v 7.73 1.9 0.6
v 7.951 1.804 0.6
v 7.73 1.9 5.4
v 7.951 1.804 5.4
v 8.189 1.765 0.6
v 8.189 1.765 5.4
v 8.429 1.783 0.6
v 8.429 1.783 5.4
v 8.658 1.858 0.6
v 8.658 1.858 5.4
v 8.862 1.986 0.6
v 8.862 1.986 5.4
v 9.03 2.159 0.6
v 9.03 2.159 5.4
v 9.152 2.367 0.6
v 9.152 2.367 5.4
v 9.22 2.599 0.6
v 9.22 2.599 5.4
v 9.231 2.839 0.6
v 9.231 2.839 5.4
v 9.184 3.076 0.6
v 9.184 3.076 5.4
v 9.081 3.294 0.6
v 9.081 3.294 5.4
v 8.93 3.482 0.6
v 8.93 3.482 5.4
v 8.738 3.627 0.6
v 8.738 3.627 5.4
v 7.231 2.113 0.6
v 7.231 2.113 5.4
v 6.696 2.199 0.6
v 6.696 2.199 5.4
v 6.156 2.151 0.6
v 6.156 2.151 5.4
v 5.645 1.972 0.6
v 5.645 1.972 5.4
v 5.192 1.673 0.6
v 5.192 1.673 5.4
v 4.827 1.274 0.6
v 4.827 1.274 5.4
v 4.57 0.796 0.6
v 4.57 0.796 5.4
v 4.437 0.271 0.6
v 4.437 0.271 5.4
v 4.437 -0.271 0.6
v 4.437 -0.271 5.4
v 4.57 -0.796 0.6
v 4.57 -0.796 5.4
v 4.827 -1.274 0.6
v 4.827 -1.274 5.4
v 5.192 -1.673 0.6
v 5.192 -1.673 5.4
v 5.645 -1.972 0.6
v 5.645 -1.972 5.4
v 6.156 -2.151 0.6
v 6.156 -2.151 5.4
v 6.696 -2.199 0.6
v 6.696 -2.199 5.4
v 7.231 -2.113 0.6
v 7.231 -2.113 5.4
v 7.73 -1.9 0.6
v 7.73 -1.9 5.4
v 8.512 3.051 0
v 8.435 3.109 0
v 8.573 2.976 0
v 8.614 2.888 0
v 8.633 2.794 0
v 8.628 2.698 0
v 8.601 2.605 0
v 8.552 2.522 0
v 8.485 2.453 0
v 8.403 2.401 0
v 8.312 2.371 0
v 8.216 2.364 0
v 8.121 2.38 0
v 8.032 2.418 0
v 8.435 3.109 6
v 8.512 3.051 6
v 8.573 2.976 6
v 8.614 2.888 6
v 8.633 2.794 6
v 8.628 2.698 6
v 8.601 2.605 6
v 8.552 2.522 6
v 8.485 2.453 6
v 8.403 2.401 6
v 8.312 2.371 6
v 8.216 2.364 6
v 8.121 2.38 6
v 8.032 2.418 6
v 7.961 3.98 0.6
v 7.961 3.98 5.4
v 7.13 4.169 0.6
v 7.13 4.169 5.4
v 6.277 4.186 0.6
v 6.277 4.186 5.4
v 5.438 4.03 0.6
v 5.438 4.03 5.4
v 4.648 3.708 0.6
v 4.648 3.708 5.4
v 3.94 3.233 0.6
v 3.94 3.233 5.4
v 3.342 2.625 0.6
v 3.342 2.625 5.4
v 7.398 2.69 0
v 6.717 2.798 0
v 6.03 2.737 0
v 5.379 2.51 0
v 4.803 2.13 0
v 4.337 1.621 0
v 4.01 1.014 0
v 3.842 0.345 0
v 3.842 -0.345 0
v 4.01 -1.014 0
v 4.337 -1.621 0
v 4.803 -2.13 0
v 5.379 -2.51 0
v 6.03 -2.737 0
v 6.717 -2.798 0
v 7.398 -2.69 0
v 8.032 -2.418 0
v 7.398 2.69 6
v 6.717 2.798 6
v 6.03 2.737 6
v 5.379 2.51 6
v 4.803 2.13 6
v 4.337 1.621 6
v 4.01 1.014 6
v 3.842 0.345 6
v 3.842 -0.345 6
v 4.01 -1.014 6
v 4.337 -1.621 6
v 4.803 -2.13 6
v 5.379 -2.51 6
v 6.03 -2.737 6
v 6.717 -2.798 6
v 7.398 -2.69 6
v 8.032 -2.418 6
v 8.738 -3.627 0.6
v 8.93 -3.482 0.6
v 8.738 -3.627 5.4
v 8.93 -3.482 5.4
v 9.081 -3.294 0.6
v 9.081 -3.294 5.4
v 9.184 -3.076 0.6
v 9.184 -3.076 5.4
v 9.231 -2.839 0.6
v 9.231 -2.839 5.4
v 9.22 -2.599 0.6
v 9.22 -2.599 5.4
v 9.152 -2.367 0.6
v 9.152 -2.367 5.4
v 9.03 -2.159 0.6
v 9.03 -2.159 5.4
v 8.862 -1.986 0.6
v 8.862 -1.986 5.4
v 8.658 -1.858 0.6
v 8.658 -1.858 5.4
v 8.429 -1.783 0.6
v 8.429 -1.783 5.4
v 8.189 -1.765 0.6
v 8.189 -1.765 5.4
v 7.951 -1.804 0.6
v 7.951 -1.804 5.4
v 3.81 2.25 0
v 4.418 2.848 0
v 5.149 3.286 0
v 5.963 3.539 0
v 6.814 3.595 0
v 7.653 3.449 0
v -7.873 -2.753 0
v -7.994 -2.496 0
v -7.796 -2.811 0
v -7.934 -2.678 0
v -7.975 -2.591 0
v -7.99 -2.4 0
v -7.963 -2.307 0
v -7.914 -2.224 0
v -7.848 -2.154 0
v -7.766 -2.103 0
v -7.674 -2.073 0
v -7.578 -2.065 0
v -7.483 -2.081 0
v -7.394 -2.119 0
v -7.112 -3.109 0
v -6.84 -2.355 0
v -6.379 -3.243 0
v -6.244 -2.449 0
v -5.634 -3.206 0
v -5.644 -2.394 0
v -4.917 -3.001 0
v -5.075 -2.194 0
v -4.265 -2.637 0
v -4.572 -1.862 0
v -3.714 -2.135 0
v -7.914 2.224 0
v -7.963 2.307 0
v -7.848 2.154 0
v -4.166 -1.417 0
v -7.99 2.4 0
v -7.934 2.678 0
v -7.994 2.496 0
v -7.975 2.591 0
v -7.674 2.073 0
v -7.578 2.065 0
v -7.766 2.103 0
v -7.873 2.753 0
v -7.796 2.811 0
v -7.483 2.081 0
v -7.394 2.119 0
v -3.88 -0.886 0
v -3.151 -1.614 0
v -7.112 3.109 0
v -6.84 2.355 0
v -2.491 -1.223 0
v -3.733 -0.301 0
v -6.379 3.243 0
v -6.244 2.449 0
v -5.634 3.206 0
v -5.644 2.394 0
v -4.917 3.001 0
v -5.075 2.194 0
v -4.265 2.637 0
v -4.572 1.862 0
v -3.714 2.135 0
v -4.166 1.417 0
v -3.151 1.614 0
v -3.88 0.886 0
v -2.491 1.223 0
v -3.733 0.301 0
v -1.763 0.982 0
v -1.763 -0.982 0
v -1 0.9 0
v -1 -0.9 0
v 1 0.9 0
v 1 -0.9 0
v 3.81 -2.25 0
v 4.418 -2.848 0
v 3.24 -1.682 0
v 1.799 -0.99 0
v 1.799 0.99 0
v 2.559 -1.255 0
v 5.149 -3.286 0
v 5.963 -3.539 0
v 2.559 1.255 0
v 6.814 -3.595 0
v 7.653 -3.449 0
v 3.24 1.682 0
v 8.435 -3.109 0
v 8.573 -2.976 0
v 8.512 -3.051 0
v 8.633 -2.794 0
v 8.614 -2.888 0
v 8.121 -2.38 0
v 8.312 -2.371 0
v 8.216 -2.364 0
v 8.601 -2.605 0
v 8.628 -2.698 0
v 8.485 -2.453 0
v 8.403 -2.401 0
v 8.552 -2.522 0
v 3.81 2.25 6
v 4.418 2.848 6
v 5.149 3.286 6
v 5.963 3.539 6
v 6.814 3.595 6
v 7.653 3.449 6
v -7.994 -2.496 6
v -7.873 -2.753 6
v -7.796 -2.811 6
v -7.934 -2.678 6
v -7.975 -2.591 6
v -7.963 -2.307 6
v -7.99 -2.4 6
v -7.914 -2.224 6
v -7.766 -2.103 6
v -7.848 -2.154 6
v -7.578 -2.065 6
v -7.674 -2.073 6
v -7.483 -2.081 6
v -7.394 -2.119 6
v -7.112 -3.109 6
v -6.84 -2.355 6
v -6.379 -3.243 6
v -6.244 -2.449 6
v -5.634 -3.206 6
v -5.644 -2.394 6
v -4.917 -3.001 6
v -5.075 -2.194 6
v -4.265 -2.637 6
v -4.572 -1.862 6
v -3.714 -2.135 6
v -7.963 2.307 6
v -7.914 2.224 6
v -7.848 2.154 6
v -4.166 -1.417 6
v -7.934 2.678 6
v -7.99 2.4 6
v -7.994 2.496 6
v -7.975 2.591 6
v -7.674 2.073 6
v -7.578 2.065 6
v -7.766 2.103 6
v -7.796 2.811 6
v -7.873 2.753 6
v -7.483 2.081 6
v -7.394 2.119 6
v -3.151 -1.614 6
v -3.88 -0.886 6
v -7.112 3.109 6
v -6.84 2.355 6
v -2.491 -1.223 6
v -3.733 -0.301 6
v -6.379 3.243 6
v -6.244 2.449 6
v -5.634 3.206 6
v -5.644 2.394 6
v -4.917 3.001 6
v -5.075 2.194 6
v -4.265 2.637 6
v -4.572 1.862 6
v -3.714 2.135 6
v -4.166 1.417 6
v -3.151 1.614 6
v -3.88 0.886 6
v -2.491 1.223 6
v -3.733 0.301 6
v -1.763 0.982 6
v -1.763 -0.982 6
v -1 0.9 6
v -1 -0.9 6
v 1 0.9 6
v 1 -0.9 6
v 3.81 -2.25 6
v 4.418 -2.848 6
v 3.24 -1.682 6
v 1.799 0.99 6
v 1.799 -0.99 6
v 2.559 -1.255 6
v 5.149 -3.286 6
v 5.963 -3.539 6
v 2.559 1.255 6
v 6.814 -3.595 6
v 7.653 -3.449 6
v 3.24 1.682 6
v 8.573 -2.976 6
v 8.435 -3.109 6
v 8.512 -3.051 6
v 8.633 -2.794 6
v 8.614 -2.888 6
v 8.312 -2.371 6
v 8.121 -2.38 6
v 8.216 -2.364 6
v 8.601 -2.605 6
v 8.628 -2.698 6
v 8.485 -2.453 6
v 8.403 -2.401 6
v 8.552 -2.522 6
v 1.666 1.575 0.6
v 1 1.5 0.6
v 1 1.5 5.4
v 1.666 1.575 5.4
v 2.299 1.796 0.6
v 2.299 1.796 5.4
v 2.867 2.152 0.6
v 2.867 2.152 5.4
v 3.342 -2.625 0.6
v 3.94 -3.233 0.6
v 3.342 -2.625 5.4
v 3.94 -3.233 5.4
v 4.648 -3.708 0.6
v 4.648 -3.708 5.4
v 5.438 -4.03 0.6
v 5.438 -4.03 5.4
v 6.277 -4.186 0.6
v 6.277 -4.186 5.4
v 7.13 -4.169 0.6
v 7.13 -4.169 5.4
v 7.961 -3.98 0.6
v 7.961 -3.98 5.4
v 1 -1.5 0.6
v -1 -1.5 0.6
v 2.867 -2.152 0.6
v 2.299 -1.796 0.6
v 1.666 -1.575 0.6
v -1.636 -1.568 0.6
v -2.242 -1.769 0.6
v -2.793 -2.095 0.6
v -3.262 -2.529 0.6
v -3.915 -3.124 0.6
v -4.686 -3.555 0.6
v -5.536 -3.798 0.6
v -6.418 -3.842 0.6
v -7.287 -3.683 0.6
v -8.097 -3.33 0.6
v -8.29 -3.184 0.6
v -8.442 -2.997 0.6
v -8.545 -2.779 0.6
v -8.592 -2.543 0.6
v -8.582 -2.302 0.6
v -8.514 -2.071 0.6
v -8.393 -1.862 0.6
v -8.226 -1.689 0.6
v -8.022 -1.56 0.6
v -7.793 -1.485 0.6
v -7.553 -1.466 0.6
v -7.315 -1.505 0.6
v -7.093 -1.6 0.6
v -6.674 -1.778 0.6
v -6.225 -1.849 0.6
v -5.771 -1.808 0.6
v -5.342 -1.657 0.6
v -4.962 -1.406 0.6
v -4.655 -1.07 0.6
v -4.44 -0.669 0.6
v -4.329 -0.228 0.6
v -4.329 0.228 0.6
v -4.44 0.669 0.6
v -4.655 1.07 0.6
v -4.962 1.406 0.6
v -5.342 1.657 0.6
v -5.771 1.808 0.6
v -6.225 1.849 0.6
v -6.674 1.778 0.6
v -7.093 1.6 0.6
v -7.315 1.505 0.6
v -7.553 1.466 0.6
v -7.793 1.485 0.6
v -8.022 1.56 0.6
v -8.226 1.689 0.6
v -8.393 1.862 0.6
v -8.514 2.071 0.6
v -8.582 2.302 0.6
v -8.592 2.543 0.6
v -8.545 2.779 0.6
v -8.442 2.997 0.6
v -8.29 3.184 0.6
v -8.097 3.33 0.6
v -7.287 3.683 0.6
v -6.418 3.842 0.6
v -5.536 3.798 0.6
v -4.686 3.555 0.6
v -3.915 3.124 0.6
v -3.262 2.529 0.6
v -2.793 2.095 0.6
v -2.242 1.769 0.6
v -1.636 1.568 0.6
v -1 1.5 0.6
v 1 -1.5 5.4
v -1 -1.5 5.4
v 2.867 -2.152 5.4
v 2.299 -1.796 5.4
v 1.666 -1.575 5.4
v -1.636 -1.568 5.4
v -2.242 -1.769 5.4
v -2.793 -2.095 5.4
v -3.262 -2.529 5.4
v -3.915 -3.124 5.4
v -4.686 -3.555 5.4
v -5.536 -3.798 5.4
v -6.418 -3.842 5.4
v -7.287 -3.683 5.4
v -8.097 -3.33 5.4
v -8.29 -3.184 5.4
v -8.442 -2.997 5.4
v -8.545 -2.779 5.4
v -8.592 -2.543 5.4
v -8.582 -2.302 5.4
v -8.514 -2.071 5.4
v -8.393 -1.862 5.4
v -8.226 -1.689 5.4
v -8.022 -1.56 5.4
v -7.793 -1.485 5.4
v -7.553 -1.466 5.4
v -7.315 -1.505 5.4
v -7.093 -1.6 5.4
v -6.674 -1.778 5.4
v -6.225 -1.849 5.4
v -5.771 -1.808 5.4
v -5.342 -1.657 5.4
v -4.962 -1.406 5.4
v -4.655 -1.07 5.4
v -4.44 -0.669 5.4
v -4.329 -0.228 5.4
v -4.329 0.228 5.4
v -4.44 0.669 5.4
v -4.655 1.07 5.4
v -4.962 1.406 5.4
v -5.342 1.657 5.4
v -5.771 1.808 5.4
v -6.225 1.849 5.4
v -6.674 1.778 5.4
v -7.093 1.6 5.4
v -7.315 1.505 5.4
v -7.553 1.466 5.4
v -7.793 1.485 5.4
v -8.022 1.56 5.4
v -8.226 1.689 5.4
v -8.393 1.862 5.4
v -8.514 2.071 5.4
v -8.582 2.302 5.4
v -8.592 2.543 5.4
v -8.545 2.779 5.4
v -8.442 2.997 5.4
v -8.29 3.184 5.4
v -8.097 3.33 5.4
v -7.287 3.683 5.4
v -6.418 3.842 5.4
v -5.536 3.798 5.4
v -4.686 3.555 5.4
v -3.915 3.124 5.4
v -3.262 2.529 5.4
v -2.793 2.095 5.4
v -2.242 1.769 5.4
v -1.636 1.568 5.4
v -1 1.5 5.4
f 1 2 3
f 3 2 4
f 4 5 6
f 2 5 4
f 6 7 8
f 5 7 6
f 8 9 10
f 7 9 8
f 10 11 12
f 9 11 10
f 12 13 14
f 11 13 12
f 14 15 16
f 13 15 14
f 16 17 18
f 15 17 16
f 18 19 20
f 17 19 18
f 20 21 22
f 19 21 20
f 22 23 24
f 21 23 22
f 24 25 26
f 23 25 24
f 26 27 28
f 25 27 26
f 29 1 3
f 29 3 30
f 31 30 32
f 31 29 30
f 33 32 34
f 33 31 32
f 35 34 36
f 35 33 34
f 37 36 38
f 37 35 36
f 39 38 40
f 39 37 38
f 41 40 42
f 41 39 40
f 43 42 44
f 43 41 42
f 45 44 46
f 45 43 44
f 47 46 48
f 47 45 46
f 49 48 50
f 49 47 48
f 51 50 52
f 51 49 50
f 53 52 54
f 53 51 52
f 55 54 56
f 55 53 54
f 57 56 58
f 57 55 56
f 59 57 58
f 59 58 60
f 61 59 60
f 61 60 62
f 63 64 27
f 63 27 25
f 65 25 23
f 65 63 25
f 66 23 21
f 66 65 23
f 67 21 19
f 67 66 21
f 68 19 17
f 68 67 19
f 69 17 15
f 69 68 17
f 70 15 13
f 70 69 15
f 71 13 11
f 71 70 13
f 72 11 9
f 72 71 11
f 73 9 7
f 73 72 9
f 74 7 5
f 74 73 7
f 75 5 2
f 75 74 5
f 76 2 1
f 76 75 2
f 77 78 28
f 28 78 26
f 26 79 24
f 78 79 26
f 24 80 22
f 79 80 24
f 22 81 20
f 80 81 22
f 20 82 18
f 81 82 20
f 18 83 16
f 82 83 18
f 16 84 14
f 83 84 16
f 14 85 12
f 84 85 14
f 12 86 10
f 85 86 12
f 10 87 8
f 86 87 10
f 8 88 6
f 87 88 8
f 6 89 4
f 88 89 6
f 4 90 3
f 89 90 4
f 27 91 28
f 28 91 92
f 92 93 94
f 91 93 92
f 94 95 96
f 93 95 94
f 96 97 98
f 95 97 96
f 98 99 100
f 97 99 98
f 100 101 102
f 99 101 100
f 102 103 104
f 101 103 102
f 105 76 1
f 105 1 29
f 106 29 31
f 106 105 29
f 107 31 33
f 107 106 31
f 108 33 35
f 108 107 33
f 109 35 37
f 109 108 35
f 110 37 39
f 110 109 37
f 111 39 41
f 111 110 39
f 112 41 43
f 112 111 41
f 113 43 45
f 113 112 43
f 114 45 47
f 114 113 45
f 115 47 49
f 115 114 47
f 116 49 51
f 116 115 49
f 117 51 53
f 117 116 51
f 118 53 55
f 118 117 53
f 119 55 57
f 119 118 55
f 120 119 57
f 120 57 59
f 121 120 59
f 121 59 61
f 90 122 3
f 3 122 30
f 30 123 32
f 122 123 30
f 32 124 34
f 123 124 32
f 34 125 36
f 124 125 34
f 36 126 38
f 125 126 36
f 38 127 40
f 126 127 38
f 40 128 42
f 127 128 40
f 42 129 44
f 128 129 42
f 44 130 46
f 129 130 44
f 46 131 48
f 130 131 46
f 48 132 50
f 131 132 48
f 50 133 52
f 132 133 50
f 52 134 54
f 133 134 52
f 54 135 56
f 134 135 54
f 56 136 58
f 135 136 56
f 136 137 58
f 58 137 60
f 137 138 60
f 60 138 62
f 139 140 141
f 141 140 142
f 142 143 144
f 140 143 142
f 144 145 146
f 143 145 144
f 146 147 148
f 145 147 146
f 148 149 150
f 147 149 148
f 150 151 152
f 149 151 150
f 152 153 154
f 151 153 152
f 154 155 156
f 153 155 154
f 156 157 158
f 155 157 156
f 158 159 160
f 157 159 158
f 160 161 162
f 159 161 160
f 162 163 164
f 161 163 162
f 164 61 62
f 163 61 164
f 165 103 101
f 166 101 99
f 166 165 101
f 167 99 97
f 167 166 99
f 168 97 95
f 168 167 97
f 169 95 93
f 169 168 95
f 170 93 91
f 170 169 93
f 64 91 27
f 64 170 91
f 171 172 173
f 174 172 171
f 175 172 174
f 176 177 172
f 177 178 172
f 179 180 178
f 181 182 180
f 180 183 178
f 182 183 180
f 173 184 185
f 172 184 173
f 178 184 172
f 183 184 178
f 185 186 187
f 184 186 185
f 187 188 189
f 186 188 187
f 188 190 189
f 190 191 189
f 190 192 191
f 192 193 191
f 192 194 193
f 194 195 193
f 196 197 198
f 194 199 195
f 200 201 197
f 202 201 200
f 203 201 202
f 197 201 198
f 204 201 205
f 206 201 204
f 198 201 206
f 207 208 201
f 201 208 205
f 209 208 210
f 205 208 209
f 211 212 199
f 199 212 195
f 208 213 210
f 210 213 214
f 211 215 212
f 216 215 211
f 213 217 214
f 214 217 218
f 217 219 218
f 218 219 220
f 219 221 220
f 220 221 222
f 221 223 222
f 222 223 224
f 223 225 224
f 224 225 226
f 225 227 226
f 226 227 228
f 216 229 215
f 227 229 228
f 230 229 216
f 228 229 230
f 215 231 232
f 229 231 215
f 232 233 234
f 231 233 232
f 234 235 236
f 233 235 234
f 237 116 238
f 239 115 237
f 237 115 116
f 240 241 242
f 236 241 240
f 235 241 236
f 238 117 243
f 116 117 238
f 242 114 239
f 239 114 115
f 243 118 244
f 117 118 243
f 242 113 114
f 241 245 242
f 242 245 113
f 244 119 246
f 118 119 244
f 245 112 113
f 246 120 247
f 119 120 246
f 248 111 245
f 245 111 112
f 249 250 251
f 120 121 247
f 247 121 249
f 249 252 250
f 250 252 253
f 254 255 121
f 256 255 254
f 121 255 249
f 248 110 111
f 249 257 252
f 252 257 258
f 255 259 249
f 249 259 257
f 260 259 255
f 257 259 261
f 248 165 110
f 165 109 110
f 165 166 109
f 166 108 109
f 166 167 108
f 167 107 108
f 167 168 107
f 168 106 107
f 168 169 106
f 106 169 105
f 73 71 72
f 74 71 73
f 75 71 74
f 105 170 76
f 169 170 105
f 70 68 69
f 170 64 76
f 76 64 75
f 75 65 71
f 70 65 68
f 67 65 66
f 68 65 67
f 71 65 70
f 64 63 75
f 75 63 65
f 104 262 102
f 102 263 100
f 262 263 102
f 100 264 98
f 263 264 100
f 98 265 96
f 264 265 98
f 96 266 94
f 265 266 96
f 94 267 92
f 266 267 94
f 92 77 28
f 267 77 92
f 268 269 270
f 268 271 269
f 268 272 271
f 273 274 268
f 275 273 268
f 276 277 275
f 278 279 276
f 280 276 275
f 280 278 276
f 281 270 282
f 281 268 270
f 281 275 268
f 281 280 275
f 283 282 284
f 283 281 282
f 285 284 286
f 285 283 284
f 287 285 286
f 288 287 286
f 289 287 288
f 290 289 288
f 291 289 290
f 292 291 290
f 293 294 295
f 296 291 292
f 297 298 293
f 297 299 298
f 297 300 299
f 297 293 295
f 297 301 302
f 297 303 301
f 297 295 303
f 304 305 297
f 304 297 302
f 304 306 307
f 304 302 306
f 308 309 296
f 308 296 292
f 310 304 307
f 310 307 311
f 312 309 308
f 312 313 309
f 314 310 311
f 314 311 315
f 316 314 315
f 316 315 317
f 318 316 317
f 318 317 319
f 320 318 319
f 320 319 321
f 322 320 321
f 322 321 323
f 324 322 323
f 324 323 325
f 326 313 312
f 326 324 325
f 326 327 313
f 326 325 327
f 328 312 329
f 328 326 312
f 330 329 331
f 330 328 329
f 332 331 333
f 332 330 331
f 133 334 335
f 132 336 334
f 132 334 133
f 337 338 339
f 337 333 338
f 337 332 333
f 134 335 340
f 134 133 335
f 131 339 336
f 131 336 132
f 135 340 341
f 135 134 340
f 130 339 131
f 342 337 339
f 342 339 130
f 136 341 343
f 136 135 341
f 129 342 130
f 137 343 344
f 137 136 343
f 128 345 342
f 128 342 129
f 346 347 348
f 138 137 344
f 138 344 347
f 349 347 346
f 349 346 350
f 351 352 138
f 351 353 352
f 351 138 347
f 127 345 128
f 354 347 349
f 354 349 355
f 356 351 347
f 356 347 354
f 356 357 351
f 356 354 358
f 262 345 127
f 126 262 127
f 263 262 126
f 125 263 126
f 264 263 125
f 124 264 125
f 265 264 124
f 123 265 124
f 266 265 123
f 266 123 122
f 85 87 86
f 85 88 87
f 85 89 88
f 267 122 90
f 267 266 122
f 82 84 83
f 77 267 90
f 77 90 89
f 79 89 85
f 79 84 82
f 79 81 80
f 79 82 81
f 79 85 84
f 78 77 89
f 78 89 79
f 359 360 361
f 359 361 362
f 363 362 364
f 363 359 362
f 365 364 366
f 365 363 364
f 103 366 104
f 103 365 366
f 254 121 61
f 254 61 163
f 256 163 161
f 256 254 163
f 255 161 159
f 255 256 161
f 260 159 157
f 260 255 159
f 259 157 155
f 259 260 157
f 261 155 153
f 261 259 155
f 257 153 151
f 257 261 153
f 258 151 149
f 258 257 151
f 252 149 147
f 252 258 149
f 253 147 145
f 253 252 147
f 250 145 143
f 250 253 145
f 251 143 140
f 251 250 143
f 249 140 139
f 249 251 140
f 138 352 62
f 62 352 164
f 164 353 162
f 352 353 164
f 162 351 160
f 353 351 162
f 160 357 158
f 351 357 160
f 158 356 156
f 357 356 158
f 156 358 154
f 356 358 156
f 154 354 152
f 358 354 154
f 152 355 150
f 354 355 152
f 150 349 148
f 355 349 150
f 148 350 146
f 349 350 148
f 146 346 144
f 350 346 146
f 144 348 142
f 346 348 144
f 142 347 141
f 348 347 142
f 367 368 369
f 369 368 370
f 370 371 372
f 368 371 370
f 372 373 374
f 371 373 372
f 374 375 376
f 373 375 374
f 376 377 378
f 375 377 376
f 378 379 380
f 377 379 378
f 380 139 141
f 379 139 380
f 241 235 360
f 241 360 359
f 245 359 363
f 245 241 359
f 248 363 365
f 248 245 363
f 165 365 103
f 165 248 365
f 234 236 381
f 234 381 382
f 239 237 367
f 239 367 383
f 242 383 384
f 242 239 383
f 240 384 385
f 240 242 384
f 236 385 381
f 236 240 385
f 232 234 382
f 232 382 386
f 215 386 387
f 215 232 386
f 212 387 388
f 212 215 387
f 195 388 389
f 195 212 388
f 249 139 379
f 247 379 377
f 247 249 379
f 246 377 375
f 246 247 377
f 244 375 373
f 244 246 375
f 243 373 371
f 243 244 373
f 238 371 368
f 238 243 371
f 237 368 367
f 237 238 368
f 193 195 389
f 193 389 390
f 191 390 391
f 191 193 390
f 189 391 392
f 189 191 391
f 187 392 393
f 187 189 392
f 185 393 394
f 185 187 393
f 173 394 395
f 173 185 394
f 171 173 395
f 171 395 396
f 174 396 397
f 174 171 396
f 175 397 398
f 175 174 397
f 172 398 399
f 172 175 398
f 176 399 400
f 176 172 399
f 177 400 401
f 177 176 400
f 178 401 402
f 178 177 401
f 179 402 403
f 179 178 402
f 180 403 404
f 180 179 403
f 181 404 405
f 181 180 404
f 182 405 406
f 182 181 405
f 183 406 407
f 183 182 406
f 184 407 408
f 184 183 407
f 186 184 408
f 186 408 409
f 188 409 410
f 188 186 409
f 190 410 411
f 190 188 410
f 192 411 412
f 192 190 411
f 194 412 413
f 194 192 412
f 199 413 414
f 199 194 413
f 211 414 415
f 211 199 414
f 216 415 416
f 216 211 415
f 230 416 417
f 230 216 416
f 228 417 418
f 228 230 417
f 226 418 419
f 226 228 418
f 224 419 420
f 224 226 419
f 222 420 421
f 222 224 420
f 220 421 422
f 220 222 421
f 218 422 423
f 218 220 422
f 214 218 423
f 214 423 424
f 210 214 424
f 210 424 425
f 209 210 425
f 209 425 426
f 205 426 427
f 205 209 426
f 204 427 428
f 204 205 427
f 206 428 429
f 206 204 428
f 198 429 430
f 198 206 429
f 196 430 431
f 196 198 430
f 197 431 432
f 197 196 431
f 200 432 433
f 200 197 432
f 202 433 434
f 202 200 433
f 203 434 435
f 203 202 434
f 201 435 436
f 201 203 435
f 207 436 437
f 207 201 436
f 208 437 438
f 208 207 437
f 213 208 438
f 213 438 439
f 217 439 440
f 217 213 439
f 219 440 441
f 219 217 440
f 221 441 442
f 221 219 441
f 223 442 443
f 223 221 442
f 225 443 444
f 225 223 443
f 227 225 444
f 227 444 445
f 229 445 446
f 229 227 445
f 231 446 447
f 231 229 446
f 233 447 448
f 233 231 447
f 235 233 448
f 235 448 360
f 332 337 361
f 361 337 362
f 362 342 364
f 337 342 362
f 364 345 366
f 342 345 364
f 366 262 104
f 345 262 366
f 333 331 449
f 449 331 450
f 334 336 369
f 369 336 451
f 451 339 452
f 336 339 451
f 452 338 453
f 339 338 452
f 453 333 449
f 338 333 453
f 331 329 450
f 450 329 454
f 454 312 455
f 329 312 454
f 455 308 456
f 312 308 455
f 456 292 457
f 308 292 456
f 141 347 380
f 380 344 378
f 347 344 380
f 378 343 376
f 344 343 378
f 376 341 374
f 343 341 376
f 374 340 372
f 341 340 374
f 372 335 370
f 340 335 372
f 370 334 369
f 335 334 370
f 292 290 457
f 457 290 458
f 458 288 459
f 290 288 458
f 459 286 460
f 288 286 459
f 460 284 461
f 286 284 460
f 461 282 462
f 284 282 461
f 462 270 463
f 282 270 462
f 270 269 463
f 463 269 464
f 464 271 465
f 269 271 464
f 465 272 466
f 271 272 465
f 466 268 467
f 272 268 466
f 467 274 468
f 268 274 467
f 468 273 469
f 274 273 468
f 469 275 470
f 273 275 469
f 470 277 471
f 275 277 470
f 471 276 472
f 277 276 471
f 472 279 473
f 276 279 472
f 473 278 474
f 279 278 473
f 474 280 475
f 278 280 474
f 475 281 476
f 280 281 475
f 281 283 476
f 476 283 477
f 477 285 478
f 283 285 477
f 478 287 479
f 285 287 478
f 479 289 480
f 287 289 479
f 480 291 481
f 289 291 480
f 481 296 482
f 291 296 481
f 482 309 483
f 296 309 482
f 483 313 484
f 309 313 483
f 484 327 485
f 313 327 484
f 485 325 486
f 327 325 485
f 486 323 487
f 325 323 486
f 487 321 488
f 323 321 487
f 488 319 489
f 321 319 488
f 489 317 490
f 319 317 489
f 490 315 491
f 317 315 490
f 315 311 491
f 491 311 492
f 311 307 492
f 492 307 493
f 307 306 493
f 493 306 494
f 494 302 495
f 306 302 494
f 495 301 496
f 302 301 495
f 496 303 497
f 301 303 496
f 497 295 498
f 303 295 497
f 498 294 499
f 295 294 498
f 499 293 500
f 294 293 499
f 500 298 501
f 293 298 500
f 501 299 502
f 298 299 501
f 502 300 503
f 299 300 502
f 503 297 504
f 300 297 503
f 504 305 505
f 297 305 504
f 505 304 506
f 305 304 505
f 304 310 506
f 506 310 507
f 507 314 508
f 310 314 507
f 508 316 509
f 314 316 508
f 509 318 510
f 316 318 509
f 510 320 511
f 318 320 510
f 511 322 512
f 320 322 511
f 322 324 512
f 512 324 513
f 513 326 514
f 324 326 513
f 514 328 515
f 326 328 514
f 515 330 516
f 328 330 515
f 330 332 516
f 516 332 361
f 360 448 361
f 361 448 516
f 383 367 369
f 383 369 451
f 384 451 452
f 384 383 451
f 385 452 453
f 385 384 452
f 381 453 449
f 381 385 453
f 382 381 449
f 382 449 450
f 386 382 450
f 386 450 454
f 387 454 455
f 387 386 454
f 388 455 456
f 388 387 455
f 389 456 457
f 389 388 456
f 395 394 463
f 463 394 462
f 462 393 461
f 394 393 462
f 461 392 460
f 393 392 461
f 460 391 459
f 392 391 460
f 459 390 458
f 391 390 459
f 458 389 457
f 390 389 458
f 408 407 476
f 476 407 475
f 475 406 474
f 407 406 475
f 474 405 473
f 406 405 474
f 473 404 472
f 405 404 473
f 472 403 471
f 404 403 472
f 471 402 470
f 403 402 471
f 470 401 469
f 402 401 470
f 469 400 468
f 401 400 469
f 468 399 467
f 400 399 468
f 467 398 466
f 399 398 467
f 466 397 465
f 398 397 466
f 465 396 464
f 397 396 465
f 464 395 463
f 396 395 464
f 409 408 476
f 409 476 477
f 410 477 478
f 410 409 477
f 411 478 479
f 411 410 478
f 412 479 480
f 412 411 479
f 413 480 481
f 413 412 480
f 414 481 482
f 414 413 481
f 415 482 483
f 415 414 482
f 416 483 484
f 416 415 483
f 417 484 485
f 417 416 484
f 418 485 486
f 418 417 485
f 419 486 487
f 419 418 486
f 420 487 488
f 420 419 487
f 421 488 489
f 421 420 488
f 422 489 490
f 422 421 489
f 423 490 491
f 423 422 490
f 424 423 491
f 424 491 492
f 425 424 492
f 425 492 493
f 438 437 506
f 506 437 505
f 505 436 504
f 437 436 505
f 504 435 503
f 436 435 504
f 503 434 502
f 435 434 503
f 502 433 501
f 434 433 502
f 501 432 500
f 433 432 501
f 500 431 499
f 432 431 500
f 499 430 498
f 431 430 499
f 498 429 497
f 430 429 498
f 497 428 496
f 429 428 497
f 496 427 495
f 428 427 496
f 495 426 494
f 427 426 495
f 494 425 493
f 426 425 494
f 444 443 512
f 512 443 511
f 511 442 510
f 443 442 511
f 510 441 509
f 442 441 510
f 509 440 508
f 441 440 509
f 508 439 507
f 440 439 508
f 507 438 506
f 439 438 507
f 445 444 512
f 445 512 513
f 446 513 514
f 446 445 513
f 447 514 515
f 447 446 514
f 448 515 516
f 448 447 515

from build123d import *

# Parameters (mm, degrees)
PAD_DEPTH    = 6
CHAMFER_SIZE = 0.6


with BuildPart() as part:
    # Sketch → Pad (new body)
    with BuildSketch(Plane.XY):
        with BuildLine():
            ThreePointArc((7.729552, 1.9), (9.097303, 2.259521), (8.737782, 3.627273))
            ThreePointArc((8.737782, 3.627273), (5.853481, 4.129368), (3.341874, 2.625))
            ThreePointArc((1, 1.5), (2.299038, 1.795837), (3.341874, 2.625))
            Line((1, 1.5), (-1, 1.5))
            ThreePointArc((-3.261843, 2.529197), (-2.242496, 1.769395), (-1, 1.5))
            ThreePointArc((-3.261843, 2.529197), (-5.535711, 3.798298), (-8.097261, 3.32973))
            ThreePointArc((-8.097261, 3.32973), (-8.460121, 1.96286), (-7.093251, 1.6))
            ThreePointArc((-7.093251, -1.6), (-4.314543, 0), (-7.093251, 1.6))
            ThreePointArc((-7.093251, -1.6), (-8.460121, -1.96286), (-8.097261, -3.32973))
            ThreePointArc((-8.097261, -3.32973), (-5.535711, -3.798298), (-3.261843, -2.529197))
            ThreePointArc((-1, -1.5), (-2.242496, -1.769395), (-3.261843, -2.529197))
            Line((1, -1.5), (-1, -1.5))
            ThreePointArc((3.341874, -2.625), (2.299038, -1.795837), (1, -1.5))
            ThreePointArc((3.341874, -2.625), (5.853481, -4.129368), (8.737782, -3.627273))
            ThreePointArc((8.737782, -3.627273), (9.097303, -2.259521), (7.729551, -1.9))
            ThreePointArc((7.729552, 1.9), (4.420498, 0), (7.729551, -1.9))
        make_face()
    extrude(amount=PAD_DEPTH)

    # Chamfer
    chamfer_edges = [part.edges().sort_by_distance(p)[0] for p in [
        (0, -1.5, 6),
        (0, -1.5, 0),
    ]]
    chamfer(chamfer_edges, length=CHAMFER_SIZE)


solid = part.part
